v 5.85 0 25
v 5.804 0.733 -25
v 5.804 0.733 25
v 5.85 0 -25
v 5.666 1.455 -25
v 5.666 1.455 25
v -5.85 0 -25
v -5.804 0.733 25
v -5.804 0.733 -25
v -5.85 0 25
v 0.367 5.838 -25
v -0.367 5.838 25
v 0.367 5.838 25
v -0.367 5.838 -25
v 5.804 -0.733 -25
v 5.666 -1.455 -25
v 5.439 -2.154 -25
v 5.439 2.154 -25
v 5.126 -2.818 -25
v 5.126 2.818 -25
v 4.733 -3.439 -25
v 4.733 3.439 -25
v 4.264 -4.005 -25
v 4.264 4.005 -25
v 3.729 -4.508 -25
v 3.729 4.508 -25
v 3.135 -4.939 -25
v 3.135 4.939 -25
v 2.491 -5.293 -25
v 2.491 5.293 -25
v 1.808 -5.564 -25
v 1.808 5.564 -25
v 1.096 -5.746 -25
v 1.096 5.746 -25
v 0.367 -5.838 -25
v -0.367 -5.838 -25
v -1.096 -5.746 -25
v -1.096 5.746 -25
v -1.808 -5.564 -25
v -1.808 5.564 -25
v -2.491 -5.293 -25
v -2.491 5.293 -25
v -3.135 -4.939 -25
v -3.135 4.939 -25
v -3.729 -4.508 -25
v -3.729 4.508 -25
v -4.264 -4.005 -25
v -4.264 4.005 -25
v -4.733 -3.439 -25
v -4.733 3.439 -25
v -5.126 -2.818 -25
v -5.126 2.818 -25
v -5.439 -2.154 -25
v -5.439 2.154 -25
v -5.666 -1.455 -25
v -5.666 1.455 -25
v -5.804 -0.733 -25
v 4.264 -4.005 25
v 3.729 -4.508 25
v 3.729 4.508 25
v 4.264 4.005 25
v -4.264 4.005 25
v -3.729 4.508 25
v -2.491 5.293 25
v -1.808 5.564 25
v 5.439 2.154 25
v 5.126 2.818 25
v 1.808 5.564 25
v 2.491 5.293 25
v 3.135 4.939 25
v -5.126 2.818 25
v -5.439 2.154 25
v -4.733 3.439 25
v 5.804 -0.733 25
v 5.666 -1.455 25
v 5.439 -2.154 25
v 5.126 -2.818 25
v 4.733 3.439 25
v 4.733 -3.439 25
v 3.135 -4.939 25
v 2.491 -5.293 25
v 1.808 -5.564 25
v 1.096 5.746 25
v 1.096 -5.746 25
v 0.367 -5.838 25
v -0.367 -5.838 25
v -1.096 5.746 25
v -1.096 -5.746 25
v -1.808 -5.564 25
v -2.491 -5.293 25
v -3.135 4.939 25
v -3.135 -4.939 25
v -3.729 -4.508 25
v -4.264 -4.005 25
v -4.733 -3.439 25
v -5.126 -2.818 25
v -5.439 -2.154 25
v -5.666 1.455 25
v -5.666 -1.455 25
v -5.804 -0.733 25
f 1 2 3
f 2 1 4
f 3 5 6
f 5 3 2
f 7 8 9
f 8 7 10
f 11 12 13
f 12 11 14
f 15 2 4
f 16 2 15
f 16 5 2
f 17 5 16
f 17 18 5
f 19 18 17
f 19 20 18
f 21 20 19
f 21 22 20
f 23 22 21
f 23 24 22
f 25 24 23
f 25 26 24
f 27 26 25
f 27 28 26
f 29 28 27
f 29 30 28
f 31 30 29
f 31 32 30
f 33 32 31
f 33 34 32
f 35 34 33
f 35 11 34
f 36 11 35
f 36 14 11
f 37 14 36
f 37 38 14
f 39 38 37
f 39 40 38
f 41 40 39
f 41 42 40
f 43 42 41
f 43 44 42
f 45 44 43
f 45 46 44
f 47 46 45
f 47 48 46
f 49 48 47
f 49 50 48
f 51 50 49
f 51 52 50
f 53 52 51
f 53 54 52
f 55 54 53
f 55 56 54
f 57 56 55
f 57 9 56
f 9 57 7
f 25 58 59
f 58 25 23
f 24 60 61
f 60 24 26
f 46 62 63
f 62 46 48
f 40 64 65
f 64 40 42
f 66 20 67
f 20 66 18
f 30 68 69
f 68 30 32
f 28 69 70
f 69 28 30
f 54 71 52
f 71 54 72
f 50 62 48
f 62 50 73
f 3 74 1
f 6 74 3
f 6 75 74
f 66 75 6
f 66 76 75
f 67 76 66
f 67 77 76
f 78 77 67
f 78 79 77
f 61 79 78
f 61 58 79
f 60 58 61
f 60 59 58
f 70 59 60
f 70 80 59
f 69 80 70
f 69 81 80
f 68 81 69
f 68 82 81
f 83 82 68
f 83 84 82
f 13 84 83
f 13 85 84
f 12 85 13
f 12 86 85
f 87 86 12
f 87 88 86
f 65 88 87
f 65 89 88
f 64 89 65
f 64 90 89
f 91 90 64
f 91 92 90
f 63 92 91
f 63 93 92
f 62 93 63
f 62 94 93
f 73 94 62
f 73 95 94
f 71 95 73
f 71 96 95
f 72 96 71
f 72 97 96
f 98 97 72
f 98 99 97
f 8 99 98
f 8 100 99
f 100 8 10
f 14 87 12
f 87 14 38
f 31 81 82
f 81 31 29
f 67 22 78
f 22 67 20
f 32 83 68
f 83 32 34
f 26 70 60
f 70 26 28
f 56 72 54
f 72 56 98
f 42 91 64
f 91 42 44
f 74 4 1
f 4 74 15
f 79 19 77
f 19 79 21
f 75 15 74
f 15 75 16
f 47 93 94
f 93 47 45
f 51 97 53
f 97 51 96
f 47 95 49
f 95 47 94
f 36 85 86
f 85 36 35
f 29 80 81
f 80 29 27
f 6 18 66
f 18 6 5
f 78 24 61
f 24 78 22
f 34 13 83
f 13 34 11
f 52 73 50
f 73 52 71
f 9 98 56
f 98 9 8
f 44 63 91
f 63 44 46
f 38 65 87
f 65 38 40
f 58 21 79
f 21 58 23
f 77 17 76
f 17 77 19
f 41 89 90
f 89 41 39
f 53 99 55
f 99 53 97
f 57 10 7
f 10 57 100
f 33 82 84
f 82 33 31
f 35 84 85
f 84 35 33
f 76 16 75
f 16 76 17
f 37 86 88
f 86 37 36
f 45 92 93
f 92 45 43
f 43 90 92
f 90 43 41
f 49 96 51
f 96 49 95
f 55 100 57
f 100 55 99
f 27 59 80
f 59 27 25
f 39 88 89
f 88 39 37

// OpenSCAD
$fn = 50;


difference() {
	union() {
		translate(v = [0, 0, -25.0000000000]) {
			cylinder(h = 50, r = 5.8500000000);
		}
	}
	union() {
		translate(v = [0, 0, -100.0000000000]) {
			cylinder(h = 200, r = 0);
		}
	}
}
